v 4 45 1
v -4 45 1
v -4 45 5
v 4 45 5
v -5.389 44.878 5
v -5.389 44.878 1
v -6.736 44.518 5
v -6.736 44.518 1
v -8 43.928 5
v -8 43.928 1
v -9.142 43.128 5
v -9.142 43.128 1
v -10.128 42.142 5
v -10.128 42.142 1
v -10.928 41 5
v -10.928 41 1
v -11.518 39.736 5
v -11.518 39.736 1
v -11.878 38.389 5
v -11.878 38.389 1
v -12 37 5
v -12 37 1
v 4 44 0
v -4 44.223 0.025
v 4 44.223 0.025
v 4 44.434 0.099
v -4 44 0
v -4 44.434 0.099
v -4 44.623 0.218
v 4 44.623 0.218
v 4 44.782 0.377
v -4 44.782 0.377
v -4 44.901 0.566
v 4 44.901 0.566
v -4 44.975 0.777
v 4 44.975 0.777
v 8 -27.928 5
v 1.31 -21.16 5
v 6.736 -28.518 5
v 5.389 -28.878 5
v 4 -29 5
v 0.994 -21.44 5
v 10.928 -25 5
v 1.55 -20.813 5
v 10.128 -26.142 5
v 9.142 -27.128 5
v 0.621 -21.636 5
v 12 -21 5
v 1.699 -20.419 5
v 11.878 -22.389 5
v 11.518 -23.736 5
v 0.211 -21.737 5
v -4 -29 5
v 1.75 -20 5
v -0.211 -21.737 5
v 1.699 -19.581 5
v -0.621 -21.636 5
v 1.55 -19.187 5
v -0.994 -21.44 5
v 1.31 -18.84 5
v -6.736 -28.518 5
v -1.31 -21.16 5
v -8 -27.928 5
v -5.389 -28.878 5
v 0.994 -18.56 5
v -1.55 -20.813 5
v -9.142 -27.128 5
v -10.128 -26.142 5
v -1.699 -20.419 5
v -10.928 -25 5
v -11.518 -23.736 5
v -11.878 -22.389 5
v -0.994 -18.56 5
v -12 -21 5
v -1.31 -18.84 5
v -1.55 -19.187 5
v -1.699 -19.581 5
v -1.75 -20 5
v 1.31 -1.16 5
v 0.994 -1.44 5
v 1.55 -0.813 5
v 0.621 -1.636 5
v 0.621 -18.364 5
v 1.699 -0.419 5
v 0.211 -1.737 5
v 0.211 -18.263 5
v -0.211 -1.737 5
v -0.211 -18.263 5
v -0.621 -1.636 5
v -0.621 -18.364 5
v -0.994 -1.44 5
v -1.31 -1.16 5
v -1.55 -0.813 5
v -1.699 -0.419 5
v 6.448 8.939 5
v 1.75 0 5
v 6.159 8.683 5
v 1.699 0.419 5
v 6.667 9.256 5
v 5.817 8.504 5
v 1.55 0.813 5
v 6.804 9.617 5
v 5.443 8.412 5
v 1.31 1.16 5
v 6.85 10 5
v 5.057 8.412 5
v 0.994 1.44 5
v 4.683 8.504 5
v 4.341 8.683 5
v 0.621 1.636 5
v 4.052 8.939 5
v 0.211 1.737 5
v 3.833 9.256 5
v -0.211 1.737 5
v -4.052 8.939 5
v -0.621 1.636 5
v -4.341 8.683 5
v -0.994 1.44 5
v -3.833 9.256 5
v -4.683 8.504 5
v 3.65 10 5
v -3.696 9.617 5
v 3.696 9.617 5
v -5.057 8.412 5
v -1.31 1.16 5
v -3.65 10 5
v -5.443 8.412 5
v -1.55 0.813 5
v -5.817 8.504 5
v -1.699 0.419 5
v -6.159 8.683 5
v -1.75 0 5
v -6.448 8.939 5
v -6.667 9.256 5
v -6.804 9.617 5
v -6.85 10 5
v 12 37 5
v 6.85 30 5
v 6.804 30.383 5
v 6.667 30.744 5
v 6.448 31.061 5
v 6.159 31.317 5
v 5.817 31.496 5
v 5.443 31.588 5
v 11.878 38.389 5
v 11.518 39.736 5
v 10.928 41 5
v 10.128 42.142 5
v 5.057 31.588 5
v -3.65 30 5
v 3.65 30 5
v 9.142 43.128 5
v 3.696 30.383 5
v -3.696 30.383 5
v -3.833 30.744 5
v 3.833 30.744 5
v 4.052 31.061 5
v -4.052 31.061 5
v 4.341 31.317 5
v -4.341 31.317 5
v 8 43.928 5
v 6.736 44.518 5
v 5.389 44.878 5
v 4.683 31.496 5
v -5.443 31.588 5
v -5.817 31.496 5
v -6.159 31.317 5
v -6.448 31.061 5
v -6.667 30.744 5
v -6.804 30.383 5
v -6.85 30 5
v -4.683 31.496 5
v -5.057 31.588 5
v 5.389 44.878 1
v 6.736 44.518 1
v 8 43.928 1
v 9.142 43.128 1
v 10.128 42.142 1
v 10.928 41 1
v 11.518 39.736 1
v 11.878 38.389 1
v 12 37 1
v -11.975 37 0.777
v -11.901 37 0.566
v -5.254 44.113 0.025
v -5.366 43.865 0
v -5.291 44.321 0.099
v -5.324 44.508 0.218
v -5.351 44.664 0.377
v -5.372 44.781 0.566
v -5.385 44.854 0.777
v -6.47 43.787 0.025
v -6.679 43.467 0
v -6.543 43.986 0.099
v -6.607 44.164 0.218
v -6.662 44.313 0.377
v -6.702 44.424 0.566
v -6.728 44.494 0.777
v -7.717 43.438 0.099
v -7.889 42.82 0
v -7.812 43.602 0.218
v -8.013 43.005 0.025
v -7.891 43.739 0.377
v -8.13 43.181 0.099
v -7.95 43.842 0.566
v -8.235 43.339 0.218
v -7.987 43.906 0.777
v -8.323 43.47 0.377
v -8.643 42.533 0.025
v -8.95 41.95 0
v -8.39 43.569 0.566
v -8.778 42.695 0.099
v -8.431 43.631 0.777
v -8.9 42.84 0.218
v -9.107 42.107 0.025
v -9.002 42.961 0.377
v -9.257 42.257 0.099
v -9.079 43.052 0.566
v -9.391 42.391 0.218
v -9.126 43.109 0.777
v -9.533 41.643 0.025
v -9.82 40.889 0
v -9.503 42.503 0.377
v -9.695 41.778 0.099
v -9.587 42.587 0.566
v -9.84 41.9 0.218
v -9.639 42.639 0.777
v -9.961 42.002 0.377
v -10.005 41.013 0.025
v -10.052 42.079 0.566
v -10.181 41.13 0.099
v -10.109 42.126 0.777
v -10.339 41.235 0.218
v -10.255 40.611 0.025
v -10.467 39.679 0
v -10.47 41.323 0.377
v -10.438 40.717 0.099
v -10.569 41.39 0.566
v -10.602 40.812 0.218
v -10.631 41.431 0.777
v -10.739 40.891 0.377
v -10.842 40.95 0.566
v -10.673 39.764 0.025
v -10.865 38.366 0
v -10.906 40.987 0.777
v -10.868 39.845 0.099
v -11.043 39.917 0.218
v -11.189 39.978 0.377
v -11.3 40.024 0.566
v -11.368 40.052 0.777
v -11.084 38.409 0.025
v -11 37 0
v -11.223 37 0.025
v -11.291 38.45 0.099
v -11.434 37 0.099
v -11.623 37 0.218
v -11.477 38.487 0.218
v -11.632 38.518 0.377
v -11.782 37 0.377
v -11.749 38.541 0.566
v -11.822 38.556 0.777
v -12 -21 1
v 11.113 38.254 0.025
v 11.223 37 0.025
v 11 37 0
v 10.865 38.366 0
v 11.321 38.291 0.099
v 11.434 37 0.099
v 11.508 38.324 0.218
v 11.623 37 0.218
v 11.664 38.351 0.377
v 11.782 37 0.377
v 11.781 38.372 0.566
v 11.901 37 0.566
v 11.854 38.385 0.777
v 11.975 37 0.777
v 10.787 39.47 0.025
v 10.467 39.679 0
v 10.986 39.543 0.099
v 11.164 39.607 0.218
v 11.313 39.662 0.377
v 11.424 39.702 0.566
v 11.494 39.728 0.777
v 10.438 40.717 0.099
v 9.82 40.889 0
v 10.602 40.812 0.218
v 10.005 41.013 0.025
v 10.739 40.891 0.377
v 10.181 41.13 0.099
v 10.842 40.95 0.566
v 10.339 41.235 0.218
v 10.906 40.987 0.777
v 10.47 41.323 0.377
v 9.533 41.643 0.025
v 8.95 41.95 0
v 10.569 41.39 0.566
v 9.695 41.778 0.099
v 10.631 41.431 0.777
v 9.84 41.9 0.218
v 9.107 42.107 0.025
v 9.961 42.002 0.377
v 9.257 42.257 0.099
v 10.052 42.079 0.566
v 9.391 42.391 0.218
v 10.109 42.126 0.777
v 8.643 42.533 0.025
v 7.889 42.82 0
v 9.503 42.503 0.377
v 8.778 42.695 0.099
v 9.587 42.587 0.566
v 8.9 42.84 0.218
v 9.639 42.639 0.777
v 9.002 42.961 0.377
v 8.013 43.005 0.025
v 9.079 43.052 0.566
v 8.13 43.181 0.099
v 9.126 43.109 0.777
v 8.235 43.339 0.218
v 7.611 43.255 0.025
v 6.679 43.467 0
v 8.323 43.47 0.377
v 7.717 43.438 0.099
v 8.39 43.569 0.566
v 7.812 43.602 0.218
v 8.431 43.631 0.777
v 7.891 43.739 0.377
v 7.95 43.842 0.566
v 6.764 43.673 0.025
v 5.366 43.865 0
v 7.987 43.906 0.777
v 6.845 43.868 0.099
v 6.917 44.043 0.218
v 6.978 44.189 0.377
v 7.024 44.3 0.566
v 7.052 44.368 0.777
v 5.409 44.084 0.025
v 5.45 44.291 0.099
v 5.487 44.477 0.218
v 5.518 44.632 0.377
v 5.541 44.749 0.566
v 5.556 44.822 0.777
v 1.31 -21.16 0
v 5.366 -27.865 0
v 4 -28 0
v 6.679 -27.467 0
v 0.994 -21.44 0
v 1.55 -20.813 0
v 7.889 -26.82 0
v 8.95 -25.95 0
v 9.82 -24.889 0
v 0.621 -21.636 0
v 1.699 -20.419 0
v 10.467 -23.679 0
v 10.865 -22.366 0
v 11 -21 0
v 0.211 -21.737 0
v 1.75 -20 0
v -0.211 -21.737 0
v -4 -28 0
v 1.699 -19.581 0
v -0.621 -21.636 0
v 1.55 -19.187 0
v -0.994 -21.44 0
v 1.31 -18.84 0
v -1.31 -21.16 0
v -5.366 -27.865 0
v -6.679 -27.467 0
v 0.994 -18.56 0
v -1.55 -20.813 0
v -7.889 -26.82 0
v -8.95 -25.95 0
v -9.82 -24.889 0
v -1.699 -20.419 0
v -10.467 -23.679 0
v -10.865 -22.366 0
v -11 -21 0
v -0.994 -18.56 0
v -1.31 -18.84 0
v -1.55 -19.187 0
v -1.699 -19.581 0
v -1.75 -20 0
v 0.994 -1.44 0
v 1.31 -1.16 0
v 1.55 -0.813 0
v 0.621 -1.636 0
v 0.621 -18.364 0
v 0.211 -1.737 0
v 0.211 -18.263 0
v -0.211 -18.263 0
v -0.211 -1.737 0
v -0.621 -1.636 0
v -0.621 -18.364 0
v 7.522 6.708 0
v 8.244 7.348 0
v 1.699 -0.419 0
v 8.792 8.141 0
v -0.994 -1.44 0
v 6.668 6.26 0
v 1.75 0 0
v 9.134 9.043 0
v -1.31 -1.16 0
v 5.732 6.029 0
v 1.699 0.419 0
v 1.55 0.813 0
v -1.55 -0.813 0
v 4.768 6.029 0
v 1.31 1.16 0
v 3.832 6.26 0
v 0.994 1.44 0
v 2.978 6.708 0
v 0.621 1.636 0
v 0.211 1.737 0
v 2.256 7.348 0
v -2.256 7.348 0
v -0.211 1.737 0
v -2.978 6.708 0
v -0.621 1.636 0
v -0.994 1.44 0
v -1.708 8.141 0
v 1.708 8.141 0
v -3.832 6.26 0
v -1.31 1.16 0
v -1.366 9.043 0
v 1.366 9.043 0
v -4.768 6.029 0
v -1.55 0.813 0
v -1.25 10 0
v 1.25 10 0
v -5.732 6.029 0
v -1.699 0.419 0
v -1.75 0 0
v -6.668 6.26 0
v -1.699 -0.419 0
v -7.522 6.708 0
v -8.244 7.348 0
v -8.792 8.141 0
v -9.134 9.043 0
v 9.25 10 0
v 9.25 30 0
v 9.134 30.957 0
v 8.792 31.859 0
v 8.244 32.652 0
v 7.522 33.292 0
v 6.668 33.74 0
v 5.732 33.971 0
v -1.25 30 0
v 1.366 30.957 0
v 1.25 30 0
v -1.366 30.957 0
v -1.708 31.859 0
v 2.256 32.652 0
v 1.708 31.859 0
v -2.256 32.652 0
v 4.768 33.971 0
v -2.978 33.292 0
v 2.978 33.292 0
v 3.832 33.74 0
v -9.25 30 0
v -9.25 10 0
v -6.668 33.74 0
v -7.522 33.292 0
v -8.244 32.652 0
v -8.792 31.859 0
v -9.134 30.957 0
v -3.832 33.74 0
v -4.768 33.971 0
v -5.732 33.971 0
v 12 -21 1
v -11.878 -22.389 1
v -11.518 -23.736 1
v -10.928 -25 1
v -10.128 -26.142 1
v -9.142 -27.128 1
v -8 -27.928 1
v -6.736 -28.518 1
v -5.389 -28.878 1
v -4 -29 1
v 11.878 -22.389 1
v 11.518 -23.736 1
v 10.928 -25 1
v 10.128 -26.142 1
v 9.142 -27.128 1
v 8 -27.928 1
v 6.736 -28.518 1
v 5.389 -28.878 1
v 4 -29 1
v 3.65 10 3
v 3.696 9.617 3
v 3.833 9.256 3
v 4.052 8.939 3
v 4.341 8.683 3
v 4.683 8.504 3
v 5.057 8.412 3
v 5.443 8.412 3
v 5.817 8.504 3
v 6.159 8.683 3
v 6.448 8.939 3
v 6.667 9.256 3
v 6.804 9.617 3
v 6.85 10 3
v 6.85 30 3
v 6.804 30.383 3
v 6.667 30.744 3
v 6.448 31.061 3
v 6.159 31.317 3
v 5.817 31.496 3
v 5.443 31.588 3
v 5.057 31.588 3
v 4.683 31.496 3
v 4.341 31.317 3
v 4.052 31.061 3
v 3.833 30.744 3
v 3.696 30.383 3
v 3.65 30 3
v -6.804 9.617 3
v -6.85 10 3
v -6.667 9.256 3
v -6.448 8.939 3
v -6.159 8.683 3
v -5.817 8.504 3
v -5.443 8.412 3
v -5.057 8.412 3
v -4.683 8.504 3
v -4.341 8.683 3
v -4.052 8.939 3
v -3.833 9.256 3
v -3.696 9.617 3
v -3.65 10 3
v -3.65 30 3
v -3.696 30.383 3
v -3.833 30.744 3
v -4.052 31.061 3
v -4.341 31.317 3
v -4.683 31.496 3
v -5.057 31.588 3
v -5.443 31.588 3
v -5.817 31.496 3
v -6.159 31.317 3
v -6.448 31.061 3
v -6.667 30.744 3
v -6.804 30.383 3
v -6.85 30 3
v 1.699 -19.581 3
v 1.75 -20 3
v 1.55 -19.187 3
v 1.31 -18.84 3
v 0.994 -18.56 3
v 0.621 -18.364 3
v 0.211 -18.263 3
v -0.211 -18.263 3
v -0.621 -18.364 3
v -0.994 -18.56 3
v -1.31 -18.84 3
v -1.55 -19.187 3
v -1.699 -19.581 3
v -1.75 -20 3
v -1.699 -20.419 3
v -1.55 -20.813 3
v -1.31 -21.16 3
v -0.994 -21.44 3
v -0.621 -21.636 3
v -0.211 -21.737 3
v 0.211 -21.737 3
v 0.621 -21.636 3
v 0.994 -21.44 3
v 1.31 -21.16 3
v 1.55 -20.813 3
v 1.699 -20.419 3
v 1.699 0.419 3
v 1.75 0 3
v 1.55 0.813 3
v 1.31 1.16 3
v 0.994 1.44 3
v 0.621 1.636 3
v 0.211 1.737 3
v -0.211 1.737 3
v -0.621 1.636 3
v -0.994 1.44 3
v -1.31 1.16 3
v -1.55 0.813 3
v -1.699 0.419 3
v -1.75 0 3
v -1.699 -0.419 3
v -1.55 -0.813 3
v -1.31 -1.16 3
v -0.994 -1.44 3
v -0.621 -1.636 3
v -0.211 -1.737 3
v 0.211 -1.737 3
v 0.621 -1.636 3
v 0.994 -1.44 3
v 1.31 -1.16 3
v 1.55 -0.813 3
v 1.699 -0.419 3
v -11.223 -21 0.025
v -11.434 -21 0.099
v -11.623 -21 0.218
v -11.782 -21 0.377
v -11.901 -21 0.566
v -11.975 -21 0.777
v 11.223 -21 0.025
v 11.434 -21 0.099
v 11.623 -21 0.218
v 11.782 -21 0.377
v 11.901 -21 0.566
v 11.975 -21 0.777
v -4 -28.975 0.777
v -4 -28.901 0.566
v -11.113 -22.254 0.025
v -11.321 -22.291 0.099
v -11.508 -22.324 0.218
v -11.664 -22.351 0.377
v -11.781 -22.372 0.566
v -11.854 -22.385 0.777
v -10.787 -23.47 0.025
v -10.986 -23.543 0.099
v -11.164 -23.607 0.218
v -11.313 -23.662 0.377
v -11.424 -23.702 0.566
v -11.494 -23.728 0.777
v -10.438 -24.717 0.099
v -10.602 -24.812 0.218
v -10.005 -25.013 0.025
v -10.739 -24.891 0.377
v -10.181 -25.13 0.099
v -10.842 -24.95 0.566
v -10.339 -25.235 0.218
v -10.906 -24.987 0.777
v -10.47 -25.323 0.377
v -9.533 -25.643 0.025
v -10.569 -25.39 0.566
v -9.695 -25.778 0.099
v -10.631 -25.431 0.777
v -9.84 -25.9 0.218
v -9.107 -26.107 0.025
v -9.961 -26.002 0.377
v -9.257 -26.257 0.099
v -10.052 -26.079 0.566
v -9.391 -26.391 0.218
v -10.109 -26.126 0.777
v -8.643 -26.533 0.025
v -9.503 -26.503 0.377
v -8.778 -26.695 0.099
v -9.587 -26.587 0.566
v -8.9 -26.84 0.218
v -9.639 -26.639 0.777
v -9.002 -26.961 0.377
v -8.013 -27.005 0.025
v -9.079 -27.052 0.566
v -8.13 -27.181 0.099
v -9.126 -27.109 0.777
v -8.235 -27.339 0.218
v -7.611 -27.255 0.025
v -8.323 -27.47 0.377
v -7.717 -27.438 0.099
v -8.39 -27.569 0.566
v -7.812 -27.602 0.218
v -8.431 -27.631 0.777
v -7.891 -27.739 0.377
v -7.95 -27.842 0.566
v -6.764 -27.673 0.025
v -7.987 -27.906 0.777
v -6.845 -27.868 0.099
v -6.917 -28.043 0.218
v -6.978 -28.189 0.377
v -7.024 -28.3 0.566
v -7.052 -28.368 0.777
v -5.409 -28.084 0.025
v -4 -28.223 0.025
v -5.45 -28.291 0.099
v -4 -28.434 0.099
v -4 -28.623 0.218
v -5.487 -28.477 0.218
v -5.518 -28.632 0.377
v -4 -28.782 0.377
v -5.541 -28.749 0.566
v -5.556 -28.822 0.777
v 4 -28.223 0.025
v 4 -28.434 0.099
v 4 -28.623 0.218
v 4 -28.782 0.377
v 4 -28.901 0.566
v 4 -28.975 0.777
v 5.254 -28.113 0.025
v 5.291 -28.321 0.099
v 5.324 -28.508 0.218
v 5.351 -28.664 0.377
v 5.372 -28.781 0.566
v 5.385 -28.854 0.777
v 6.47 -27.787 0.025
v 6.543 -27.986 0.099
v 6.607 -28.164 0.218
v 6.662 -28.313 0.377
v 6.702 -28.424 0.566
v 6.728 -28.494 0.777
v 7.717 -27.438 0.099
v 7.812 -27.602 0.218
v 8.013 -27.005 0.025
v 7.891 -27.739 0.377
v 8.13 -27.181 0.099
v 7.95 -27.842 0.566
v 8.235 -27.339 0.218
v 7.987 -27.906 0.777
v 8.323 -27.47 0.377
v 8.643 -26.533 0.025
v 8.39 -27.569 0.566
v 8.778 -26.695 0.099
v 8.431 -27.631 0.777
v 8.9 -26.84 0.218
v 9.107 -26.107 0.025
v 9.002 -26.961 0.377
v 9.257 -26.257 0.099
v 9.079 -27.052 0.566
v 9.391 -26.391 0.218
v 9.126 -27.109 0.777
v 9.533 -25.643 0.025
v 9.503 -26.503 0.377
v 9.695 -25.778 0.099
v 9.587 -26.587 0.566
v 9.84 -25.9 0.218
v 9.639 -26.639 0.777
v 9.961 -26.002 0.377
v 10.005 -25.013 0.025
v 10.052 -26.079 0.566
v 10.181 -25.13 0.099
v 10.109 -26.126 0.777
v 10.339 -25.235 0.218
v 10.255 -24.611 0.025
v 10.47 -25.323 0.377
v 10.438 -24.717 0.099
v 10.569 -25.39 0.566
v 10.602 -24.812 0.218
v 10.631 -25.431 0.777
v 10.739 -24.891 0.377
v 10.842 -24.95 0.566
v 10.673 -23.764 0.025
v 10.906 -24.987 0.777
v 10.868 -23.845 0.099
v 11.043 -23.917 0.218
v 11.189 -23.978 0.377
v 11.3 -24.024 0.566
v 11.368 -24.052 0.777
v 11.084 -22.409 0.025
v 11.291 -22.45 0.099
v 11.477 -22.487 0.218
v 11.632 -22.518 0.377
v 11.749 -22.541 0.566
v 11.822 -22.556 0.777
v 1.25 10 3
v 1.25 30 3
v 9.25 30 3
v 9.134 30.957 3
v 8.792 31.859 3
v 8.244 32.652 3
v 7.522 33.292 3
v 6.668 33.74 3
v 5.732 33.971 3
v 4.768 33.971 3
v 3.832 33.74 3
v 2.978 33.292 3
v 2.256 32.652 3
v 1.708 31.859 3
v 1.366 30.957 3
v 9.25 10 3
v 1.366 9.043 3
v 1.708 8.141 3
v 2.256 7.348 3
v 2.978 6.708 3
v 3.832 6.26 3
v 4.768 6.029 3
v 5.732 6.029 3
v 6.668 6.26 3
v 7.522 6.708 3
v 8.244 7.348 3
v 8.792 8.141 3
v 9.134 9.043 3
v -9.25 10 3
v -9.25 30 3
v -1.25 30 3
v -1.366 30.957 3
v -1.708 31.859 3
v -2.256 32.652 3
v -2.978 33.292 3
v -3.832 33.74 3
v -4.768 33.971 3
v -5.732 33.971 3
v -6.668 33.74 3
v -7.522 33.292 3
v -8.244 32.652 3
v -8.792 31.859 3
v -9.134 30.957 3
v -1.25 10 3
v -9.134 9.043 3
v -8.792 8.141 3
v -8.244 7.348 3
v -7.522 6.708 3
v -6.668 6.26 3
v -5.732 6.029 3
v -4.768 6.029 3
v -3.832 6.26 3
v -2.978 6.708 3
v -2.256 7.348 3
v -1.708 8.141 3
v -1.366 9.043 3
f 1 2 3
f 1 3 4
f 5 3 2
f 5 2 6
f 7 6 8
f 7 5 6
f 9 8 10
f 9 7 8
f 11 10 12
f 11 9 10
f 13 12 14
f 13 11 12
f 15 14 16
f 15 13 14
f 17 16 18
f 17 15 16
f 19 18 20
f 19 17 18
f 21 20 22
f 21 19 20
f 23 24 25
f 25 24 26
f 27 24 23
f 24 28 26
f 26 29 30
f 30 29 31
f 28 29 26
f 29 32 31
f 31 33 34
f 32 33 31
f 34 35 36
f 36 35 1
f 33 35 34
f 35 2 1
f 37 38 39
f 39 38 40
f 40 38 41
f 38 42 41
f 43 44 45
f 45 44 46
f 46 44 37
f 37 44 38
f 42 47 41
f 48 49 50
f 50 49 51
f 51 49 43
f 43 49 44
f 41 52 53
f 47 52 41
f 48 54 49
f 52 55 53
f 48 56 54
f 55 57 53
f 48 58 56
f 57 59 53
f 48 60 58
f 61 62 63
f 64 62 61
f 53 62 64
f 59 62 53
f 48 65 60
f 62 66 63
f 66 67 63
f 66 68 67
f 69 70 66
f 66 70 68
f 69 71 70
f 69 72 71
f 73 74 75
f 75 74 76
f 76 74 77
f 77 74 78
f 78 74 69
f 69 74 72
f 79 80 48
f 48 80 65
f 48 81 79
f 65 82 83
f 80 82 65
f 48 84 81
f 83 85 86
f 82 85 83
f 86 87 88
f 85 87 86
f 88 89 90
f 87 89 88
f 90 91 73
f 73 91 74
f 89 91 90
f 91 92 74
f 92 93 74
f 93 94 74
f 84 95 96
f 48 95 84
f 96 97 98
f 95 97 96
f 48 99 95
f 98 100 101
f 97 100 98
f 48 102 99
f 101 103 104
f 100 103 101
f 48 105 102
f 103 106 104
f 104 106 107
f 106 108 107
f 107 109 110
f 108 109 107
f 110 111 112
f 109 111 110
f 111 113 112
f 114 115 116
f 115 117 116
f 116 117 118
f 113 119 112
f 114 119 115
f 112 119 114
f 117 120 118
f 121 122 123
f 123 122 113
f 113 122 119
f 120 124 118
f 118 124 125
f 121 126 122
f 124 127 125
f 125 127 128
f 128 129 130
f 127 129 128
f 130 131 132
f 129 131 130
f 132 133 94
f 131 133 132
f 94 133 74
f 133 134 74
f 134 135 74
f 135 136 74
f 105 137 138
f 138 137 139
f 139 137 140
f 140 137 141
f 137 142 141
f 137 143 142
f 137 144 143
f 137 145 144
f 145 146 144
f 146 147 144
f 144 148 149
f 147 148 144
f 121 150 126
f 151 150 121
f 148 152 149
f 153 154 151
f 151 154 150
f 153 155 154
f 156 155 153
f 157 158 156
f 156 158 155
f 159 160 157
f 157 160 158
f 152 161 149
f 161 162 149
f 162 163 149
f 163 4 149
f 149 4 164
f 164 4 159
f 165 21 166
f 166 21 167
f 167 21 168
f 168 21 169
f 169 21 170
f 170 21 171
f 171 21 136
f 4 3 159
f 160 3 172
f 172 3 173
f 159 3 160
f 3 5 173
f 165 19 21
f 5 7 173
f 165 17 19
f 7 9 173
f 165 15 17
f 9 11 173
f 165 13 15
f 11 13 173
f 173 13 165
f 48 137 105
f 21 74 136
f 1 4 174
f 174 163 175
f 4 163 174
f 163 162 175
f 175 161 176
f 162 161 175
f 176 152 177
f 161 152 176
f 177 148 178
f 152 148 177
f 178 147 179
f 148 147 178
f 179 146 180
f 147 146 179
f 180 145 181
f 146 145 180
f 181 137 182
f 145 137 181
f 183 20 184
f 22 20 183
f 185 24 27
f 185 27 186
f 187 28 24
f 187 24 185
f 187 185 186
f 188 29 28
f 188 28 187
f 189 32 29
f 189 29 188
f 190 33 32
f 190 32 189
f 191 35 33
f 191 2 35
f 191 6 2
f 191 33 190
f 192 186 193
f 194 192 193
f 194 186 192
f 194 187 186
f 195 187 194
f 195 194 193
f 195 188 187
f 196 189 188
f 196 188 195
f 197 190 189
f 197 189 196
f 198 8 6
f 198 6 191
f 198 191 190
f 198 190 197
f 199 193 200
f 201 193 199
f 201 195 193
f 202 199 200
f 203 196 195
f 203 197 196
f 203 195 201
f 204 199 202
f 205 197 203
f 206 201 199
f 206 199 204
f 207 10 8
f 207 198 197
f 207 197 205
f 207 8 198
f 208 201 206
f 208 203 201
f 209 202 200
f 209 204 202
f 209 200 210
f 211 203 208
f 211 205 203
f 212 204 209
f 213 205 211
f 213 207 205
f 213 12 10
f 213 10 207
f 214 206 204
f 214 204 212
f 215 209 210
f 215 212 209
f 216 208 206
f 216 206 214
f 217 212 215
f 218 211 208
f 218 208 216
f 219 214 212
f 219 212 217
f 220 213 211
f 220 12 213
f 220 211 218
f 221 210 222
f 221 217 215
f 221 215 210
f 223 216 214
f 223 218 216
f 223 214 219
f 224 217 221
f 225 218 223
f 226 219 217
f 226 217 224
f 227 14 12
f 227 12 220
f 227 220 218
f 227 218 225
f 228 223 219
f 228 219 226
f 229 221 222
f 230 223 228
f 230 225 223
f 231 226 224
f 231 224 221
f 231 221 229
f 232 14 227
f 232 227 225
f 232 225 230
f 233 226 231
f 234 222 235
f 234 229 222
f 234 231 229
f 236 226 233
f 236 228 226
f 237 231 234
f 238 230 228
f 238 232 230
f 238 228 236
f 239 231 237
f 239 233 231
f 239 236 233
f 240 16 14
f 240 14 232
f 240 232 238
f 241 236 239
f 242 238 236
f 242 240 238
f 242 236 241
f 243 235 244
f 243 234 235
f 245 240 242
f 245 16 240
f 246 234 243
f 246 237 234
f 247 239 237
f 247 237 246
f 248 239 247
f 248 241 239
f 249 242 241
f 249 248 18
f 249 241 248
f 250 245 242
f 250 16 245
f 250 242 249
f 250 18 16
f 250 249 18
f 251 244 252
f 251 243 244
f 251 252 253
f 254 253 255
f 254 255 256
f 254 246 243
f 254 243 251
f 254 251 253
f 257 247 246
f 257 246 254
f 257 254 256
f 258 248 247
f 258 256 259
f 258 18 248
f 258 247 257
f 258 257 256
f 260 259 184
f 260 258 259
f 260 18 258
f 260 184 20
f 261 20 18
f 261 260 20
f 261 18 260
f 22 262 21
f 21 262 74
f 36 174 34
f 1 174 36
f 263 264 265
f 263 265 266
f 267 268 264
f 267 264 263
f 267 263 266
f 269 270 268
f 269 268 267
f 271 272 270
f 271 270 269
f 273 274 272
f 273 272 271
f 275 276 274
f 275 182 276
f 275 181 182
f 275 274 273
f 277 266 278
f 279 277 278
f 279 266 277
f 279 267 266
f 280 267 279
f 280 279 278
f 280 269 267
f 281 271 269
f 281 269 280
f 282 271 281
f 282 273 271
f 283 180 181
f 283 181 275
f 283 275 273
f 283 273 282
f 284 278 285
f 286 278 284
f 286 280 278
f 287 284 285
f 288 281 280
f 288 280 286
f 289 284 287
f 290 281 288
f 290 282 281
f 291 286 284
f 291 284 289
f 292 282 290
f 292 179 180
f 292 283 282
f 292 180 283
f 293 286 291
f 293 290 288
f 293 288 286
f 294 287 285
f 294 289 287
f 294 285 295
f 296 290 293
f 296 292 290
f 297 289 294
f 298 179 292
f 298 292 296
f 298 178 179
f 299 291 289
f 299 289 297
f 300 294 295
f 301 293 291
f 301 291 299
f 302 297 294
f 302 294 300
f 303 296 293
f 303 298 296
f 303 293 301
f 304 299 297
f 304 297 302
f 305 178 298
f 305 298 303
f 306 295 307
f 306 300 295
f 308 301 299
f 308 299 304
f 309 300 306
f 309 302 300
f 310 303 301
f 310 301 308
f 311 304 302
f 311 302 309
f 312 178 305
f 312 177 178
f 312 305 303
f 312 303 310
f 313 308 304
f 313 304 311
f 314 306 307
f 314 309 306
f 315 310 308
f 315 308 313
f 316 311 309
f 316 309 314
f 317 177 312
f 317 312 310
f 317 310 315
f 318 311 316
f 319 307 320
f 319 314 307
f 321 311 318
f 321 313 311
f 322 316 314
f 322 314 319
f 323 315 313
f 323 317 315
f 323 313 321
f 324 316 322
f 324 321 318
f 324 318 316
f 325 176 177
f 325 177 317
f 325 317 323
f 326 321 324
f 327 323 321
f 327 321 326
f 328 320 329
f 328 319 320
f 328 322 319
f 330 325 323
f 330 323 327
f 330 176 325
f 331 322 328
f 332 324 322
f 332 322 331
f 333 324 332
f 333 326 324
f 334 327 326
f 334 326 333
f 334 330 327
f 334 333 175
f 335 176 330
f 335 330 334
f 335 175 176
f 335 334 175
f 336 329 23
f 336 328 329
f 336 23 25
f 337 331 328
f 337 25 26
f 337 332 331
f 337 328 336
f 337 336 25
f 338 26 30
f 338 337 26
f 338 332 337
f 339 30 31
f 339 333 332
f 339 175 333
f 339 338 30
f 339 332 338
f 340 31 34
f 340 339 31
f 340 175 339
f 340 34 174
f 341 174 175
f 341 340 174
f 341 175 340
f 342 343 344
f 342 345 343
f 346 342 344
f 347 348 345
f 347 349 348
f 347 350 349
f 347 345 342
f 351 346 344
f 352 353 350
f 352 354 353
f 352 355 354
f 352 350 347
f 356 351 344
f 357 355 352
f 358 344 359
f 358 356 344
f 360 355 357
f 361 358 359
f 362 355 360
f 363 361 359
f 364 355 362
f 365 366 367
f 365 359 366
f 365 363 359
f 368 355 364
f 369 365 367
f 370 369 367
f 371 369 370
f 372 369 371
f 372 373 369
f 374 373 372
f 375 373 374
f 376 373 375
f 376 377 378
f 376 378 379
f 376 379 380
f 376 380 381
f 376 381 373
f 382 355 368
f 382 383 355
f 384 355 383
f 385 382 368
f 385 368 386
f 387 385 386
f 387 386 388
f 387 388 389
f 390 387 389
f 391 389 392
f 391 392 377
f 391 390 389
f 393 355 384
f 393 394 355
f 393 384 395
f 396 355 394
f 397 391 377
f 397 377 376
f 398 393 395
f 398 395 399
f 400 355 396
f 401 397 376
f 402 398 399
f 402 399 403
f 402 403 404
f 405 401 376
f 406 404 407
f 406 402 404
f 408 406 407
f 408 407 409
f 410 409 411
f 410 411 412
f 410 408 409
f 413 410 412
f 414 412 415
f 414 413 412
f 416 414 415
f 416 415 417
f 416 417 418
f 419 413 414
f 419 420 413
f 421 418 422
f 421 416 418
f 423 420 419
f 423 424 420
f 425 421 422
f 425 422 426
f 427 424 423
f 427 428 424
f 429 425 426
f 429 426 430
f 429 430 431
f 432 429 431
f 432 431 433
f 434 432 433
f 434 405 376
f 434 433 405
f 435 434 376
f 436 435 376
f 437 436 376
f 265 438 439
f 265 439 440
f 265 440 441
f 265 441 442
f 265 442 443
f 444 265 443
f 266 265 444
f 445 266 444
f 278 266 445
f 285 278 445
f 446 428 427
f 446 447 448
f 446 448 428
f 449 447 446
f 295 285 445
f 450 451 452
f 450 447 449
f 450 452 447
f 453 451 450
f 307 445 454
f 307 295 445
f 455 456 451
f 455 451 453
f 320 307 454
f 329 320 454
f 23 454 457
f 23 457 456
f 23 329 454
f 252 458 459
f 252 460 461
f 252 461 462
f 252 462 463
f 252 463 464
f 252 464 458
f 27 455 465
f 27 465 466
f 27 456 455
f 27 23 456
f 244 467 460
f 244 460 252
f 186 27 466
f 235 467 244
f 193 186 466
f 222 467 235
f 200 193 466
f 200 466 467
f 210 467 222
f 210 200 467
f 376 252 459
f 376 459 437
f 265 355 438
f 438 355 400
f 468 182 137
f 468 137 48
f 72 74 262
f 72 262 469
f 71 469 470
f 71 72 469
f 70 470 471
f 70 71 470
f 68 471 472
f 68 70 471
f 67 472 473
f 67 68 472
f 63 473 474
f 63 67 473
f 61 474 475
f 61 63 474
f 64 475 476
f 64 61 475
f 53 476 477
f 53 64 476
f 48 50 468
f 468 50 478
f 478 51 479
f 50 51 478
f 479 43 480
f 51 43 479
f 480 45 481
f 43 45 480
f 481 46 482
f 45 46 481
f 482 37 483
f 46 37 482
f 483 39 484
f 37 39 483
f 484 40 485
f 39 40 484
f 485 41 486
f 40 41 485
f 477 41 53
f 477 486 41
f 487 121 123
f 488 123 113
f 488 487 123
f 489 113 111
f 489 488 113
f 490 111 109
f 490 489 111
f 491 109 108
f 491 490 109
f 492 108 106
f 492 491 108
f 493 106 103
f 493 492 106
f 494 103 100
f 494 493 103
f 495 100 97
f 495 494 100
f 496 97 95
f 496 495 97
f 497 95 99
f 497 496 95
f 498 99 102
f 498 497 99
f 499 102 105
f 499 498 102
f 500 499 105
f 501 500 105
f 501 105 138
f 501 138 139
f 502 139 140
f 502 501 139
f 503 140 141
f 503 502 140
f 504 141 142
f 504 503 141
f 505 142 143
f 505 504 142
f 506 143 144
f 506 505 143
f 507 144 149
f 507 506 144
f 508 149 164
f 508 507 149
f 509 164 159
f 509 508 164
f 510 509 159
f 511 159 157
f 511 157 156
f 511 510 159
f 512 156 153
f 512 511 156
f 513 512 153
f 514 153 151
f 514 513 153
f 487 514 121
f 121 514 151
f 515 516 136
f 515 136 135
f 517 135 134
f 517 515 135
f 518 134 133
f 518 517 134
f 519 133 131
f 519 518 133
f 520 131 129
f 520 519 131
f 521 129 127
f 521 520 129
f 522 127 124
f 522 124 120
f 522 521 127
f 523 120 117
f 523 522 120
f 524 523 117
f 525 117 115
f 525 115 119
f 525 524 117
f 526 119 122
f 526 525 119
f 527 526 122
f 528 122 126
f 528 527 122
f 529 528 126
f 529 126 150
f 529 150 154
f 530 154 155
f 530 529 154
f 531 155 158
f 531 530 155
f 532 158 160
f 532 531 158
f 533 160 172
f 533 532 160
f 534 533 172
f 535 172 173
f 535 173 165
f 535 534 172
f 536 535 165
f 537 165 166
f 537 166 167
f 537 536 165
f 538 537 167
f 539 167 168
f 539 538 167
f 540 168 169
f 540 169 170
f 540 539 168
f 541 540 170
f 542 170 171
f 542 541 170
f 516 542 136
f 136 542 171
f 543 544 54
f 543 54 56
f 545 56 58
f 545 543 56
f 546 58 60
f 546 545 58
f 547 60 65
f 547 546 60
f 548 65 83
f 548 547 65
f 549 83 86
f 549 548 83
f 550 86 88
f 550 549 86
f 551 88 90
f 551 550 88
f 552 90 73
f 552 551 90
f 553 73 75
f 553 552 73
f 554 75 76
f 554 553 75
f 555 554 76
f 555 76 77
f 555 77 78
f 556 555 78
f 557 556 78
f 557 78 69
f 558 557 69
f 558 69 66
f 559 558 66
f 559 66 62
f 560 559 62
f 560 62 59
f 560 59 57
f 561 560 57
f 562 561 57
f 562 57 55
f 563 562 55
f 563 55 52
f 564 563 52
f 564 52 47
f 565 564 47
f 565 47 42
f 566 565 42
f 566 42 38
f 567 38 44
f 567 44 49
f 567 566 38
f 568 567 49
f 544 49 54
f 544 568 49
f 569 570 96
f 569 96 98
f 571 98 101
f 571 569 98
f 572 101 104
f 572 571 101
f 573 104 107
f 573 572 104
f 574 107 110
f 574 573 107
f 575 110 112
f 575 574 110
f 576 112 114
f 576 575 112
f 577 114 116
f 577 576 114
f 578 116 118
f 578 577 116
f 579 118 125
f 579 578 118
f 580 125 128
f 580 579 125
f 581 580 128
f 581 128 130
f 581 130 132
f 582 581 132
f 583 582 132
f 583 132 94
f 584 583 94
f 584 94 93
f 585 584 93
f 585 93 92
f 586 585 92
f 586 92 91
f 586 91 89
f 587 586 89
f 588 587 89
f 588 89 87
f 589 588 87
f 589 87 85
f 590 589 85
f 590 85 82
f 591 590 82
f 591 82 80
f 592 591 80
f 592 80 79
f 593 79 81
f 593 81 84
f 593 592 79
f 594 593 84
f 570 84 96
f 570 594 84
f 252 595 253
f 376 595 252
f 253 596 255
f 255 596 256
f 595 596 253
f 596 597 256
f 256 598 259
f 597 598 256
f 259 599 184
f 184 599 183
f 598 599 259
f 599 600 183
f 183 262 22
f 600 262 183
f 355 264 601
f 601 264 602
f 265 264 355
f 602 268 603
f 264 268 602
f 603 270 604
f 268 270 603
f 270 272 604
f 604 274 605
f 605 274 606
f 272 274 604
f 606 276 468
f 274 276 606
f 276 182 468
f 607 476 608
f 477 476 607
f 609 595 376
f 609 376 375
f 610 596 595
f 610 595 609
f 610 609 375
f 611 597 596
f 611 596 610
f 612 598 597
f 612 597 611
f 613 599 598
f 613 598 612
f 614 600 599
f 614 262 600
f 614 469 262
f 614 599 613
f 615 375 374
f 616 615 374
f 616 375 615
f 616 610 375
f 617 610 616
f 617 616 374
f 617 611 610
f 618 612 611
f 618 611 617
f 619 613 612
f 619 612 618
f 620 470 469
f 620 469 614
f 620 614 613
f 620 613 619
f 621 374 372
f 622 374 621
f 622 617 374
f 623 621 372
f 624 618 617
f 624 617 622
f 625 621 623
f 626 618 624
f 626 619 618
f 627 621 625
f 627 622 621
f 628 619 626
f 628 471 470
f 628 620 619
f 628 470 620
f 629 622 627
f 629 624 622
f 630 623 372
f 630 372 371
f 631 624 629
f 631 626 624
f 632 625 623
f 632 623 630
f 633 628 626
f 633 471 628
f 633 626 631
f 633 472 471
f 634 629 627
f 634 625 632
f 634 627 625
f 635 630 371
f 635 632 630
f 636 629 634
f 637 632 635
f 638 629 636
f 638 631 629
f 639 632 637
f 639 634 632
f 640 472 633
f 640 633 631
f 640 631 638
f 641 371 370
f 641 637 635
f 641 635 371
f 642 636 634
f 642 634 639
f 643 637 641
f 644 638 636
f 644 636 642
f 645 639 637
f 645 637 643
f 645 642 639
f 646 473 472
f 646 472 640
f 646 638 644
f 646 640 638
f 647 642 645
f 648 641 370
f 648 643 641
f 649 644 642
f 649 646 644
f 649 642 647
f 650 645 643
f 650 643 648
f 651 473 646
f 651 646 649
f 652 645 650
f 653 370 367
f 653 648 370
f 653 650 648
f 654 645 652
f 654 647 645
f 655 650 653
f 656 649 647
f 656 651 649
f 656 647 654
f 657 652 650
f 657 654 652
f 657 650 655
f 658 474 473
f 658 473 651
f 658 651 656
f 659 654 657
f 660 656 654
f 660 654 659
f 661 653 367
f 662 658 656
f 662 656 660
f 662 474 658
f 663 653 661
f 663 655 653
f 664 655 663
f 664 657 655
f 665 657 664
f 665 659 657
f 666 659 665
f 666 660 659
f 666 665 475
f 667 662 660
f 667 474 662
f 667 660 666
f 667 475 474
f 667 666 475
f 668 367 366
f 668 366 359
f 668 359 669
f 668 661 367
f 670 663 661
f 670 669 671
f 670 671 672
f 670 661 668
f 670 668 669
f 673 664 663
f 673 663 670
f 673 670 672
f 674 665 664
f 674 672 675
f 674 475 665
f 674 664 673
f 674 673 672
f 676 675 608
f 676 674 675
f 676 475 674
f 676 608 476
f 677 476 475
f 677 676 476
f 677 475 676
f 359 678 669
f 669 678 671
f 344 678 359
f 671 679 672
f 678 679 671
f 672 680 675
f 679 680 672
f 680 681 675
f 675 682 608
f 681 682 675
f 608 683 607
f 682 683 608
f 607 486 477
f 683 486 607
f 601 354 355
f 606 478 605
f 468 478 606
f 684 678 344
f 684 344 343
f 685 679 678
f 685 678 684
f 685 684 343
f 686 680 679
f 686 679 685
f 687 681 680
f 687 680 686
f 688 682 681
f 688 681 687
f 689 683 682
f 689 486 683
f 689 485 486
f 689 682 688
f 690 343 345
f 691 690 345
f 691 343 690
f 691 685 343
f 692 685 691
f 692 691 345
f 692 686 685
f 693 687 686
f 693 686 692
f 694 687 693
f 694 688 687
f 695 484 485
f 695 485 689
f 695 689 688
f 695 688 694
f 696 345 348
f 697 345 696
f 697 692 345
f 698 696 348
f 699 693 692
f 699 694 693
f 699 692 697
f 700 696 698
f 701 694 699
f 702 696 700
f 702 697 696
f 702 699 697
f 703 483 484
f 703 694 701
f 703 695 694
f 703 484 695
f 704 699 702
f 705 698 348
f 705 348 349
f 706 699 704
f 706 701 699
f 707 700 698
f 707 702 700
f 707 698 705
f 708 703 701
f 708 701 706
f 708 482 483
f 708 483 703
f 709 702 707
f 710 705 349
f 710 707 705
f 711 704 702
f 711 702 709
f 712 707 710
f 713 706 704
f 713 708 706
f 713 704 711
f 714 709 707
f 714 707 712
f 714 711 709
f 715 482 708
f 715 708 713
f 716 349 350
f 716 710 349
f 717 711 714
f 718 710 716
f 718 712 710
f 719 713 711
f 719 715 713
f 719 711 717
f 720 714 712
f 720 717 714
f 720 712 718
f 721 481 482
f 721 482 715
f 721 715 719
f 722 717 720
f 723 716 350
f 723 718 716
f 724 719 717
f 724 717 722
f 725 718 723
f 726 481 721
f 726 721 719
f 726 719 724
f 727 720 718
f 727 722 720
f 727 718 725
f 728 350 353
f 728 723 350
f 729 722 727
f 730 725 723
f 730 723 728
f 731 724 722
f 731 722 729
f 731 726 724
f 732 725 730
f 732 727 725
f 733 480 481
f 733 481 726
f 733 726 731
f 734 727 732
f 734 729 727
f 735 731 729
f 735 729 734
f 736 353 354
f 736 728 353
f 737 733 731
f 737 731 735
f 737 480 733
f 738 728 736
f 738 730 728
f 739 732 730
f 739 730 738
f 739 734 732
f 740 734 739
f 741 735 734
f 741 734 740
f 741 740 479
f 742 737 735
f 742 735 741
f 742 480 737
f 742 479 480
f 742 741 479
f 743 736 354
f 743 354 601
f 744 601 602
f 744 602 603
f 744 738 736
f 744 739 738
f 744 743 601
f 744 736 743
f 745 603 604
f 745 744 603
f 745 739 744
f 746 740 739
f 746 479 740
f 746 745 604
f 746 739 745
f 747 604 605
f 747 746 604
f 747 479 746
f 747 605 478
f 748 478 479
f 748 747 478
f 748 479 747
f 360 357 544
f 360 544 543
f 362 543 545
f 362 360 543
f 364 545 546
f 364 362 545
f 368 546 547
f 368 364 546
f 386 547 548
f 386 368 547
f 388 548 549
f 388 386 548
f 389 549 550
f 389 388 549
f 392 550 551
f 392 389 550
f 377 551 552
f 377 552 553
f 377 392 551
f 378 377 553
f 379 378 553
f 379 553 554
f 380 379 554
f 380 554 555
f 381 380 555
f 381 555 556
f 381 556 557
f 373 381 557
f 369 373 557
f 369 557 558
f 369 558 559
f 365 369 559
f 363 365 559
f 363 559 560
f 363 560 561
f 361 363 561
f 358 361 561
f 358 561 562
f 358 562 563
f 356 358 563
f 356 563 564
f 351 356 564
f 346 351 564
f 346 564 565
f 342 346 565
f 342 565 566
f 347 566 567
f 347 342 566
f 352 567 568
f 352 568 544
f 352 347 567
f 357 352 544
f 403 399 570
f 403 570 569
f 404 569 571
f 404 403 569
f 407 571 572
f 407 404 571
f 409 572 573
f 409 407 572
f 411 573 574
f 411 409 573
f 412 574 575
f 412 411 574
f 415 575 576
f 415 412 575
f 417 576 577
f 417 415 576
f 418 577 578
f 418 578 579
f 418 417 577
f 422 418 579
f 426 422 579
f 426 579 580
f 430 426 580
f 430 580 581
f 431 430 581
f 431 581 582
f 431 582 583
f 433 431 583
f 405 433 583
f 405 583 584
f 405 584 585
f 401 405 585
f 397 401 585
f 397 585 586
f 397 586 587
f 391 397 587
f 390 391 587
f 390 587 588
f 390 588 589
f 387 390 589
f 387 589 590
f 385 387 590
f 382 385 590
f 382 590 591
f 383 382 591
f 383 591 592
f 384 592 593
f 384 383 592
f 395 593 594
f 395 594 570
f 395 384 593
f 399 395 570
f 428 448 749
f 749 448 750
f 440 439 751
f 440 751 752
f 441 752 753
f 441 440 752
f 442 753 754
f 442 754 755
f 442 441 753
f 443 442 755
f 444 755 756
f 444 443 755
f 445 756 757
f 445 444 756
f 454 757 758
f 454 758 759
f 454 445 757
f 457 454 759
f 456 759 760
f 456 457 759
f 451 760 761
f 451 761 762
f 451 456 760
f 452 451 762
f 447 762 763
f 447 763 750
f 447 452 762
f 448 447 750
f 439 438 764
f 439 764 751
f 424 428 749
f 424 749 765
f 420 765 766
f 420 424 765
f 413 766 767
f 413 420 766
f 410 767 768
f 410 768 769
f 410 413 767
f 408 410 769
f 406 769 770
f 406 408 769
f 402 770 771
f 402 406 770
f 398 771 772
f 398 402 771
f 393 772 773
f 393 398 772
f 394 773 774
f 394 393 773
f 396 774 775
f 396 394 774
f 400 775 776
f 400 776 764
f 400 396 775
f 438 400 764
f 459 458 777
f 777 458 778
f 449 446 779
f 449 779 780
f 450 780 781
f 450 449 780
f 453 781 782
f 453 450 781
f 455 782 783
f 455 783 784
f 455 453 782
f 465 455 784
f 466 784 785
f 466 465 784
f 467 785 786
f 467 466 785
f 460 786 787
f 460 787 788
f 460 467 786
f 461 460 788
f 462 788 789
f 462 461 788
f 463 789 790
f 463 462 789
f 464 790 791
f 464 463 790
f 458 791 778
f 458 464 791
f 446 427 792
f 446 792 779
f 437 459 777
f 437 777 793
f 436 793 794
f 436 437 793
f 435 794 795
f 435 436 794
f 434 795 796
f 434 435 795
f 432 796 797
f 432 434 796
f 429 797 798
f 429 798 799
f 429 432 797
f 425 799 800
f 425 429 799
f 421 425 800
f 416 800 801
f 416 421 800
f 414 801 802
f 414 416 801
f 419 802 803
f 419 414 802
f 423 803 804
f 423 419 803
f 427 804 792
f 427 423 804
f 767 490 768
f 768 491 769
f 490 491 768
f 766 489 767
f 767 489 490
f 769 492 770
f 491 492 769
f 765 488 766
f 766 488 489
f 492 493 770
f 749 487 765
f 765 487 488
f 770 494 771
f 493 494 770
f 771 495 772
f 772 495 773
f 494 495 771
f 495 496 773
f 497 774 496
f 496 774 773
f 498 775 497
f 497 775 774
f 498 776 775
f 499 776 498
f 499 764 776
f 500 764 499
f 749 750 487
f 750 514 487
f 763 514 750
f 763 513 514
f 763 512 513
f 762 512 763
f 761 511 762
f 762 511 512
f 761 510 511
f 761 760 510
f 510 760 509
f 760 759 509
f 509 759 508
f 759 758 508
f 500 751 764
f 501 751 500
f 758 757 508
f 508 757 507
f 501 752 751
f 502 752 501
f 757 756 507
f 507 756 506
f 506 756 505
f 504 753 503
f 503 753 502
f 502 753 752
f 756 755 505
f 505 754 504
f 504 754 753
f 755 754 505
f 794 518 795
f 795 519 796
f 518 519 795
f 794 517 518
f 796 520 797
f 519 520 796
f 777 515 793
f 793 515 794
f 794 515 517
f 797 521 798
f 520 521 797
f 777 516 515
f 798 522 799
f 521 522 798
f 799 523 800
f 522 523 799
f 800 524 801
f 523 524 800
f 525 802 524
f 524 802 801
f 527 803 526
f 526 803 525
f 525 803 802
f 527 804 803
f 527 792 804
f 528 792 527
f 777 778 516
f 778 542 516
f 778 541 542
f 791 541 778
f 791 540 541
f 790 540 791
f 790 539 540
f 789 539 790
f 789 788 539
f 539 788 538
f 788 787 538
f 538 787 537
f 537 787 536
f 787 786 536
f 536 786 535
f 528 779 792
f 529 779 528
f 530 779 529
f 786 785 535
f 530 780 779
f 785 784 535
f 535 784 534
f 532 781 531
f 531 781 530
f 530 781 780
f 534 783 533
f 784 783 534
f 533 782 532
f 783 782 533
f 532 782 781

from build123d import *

# Parameters (mm, degrees)
SKETCH_W     = 24
SKETCH_H     = 74
SKETCH_R     = 1.75
PAD_DEPTH    = 5
SKETCH001_R  = 1.75
POCKET_DEPTH = 3
FILLET_R     = 8
FILLET001_R  = 1


with BuildPart() as part:
    # Sketch → Pad (new body)
    with BuildSketch(Plane.XY):
        with Locations((0, 8)):
            Rectangle(SKETCH_W, SKETCH_H)
        Circle(SKETCH_R, mode=Mode.SUBTRACT)
        with Locations((0, -20)):
            Circle(SKETCH_R, mode=Mode.SUBTRACT)
        with BuildLine():
            ThreePointArc((-6.85, 10), (-5.25, 8.4), (-3.65, 10))
            Line((-3.65, 10), (-3.65, 30))
            ThreePointArc((-3.65, 30), (-5.25, 31.6), (-6.85, 30))
            Line((-6.85, 10), (-6.85, 30))
        make_face(mode=Mode.SUBTRACT)
        with BuildLine():
            ThreePointArc((3.65, 10), (5.25, 8.4), (6.85, 10))
            Line((6.85, 10), (6.85, 30))
            ThreePointArc((6.85, 30), (5.25, 31.6), (3.65, 30))
            Line((3.65, 10), (3.65, 30))
        make_face(mode=Mode.SUBTRACT)
    extrude(amount=PAD_DEPTH)

    # Sketch001 → Pocket (cut)
    with BuildSketch(Plane.XY):
        Circle(SKETCH001_R)
        with Locations((0, -20)):
            Circle(SKETCH001_R)
        with BuildLine():
            ThreePointArc((1.25, 10), (5.25, 6), (9.25, 10))
            Line((9.25, 10), (9.25, 30))
            ThreePointArc((9.25, 30), (5.25, 34), (1.25, 30))
            Line((1.25, 10), (1.25, 30))
        make_face()
        with BuildLine():
            ThreePointArc((-9.25, 10), (-5.25, 6), (-1.25, 10))
            Line((-1.25, 10), (-1.25, 30))
            ThreePointArc((-1.25, 30), (-5.25, 34), (-9.25, 30))
            Line((-9.25, 10), (-9.25, 30))
        make_face()
    extrude(amount=POCKET_DEPTH, mode=Mode.SUBTRACT)

    # Fillet
    fillet_edges = [part.edges().sort_by_distance(p)[0] for p in [
        (-12, -29, 2.5),
        (12, -29, 2.5),
        (12, 45, 2.5),
        (-12, 45, 2.5),
    ]]
    fillet(fillet_edges, radius=FILLET_R)

    # Fillet001
    fillet001_edges = [part.edges().sort_by_distance(p)[0] for p in [
        (-12, 8, 0),
        (-9.656854, -26.656854, 0),
        (0, -29, 0),
        (9.656854, -26.656854, 0),
        (12, 8, 0),
        (0, 45, 0),
        (-9.656854, 42.656854, 0),
        (9.656854, 42.656854, 0),
    ]]
    fillet(fillet001_edges, radius=FILLET001_R)


solid = part.part
